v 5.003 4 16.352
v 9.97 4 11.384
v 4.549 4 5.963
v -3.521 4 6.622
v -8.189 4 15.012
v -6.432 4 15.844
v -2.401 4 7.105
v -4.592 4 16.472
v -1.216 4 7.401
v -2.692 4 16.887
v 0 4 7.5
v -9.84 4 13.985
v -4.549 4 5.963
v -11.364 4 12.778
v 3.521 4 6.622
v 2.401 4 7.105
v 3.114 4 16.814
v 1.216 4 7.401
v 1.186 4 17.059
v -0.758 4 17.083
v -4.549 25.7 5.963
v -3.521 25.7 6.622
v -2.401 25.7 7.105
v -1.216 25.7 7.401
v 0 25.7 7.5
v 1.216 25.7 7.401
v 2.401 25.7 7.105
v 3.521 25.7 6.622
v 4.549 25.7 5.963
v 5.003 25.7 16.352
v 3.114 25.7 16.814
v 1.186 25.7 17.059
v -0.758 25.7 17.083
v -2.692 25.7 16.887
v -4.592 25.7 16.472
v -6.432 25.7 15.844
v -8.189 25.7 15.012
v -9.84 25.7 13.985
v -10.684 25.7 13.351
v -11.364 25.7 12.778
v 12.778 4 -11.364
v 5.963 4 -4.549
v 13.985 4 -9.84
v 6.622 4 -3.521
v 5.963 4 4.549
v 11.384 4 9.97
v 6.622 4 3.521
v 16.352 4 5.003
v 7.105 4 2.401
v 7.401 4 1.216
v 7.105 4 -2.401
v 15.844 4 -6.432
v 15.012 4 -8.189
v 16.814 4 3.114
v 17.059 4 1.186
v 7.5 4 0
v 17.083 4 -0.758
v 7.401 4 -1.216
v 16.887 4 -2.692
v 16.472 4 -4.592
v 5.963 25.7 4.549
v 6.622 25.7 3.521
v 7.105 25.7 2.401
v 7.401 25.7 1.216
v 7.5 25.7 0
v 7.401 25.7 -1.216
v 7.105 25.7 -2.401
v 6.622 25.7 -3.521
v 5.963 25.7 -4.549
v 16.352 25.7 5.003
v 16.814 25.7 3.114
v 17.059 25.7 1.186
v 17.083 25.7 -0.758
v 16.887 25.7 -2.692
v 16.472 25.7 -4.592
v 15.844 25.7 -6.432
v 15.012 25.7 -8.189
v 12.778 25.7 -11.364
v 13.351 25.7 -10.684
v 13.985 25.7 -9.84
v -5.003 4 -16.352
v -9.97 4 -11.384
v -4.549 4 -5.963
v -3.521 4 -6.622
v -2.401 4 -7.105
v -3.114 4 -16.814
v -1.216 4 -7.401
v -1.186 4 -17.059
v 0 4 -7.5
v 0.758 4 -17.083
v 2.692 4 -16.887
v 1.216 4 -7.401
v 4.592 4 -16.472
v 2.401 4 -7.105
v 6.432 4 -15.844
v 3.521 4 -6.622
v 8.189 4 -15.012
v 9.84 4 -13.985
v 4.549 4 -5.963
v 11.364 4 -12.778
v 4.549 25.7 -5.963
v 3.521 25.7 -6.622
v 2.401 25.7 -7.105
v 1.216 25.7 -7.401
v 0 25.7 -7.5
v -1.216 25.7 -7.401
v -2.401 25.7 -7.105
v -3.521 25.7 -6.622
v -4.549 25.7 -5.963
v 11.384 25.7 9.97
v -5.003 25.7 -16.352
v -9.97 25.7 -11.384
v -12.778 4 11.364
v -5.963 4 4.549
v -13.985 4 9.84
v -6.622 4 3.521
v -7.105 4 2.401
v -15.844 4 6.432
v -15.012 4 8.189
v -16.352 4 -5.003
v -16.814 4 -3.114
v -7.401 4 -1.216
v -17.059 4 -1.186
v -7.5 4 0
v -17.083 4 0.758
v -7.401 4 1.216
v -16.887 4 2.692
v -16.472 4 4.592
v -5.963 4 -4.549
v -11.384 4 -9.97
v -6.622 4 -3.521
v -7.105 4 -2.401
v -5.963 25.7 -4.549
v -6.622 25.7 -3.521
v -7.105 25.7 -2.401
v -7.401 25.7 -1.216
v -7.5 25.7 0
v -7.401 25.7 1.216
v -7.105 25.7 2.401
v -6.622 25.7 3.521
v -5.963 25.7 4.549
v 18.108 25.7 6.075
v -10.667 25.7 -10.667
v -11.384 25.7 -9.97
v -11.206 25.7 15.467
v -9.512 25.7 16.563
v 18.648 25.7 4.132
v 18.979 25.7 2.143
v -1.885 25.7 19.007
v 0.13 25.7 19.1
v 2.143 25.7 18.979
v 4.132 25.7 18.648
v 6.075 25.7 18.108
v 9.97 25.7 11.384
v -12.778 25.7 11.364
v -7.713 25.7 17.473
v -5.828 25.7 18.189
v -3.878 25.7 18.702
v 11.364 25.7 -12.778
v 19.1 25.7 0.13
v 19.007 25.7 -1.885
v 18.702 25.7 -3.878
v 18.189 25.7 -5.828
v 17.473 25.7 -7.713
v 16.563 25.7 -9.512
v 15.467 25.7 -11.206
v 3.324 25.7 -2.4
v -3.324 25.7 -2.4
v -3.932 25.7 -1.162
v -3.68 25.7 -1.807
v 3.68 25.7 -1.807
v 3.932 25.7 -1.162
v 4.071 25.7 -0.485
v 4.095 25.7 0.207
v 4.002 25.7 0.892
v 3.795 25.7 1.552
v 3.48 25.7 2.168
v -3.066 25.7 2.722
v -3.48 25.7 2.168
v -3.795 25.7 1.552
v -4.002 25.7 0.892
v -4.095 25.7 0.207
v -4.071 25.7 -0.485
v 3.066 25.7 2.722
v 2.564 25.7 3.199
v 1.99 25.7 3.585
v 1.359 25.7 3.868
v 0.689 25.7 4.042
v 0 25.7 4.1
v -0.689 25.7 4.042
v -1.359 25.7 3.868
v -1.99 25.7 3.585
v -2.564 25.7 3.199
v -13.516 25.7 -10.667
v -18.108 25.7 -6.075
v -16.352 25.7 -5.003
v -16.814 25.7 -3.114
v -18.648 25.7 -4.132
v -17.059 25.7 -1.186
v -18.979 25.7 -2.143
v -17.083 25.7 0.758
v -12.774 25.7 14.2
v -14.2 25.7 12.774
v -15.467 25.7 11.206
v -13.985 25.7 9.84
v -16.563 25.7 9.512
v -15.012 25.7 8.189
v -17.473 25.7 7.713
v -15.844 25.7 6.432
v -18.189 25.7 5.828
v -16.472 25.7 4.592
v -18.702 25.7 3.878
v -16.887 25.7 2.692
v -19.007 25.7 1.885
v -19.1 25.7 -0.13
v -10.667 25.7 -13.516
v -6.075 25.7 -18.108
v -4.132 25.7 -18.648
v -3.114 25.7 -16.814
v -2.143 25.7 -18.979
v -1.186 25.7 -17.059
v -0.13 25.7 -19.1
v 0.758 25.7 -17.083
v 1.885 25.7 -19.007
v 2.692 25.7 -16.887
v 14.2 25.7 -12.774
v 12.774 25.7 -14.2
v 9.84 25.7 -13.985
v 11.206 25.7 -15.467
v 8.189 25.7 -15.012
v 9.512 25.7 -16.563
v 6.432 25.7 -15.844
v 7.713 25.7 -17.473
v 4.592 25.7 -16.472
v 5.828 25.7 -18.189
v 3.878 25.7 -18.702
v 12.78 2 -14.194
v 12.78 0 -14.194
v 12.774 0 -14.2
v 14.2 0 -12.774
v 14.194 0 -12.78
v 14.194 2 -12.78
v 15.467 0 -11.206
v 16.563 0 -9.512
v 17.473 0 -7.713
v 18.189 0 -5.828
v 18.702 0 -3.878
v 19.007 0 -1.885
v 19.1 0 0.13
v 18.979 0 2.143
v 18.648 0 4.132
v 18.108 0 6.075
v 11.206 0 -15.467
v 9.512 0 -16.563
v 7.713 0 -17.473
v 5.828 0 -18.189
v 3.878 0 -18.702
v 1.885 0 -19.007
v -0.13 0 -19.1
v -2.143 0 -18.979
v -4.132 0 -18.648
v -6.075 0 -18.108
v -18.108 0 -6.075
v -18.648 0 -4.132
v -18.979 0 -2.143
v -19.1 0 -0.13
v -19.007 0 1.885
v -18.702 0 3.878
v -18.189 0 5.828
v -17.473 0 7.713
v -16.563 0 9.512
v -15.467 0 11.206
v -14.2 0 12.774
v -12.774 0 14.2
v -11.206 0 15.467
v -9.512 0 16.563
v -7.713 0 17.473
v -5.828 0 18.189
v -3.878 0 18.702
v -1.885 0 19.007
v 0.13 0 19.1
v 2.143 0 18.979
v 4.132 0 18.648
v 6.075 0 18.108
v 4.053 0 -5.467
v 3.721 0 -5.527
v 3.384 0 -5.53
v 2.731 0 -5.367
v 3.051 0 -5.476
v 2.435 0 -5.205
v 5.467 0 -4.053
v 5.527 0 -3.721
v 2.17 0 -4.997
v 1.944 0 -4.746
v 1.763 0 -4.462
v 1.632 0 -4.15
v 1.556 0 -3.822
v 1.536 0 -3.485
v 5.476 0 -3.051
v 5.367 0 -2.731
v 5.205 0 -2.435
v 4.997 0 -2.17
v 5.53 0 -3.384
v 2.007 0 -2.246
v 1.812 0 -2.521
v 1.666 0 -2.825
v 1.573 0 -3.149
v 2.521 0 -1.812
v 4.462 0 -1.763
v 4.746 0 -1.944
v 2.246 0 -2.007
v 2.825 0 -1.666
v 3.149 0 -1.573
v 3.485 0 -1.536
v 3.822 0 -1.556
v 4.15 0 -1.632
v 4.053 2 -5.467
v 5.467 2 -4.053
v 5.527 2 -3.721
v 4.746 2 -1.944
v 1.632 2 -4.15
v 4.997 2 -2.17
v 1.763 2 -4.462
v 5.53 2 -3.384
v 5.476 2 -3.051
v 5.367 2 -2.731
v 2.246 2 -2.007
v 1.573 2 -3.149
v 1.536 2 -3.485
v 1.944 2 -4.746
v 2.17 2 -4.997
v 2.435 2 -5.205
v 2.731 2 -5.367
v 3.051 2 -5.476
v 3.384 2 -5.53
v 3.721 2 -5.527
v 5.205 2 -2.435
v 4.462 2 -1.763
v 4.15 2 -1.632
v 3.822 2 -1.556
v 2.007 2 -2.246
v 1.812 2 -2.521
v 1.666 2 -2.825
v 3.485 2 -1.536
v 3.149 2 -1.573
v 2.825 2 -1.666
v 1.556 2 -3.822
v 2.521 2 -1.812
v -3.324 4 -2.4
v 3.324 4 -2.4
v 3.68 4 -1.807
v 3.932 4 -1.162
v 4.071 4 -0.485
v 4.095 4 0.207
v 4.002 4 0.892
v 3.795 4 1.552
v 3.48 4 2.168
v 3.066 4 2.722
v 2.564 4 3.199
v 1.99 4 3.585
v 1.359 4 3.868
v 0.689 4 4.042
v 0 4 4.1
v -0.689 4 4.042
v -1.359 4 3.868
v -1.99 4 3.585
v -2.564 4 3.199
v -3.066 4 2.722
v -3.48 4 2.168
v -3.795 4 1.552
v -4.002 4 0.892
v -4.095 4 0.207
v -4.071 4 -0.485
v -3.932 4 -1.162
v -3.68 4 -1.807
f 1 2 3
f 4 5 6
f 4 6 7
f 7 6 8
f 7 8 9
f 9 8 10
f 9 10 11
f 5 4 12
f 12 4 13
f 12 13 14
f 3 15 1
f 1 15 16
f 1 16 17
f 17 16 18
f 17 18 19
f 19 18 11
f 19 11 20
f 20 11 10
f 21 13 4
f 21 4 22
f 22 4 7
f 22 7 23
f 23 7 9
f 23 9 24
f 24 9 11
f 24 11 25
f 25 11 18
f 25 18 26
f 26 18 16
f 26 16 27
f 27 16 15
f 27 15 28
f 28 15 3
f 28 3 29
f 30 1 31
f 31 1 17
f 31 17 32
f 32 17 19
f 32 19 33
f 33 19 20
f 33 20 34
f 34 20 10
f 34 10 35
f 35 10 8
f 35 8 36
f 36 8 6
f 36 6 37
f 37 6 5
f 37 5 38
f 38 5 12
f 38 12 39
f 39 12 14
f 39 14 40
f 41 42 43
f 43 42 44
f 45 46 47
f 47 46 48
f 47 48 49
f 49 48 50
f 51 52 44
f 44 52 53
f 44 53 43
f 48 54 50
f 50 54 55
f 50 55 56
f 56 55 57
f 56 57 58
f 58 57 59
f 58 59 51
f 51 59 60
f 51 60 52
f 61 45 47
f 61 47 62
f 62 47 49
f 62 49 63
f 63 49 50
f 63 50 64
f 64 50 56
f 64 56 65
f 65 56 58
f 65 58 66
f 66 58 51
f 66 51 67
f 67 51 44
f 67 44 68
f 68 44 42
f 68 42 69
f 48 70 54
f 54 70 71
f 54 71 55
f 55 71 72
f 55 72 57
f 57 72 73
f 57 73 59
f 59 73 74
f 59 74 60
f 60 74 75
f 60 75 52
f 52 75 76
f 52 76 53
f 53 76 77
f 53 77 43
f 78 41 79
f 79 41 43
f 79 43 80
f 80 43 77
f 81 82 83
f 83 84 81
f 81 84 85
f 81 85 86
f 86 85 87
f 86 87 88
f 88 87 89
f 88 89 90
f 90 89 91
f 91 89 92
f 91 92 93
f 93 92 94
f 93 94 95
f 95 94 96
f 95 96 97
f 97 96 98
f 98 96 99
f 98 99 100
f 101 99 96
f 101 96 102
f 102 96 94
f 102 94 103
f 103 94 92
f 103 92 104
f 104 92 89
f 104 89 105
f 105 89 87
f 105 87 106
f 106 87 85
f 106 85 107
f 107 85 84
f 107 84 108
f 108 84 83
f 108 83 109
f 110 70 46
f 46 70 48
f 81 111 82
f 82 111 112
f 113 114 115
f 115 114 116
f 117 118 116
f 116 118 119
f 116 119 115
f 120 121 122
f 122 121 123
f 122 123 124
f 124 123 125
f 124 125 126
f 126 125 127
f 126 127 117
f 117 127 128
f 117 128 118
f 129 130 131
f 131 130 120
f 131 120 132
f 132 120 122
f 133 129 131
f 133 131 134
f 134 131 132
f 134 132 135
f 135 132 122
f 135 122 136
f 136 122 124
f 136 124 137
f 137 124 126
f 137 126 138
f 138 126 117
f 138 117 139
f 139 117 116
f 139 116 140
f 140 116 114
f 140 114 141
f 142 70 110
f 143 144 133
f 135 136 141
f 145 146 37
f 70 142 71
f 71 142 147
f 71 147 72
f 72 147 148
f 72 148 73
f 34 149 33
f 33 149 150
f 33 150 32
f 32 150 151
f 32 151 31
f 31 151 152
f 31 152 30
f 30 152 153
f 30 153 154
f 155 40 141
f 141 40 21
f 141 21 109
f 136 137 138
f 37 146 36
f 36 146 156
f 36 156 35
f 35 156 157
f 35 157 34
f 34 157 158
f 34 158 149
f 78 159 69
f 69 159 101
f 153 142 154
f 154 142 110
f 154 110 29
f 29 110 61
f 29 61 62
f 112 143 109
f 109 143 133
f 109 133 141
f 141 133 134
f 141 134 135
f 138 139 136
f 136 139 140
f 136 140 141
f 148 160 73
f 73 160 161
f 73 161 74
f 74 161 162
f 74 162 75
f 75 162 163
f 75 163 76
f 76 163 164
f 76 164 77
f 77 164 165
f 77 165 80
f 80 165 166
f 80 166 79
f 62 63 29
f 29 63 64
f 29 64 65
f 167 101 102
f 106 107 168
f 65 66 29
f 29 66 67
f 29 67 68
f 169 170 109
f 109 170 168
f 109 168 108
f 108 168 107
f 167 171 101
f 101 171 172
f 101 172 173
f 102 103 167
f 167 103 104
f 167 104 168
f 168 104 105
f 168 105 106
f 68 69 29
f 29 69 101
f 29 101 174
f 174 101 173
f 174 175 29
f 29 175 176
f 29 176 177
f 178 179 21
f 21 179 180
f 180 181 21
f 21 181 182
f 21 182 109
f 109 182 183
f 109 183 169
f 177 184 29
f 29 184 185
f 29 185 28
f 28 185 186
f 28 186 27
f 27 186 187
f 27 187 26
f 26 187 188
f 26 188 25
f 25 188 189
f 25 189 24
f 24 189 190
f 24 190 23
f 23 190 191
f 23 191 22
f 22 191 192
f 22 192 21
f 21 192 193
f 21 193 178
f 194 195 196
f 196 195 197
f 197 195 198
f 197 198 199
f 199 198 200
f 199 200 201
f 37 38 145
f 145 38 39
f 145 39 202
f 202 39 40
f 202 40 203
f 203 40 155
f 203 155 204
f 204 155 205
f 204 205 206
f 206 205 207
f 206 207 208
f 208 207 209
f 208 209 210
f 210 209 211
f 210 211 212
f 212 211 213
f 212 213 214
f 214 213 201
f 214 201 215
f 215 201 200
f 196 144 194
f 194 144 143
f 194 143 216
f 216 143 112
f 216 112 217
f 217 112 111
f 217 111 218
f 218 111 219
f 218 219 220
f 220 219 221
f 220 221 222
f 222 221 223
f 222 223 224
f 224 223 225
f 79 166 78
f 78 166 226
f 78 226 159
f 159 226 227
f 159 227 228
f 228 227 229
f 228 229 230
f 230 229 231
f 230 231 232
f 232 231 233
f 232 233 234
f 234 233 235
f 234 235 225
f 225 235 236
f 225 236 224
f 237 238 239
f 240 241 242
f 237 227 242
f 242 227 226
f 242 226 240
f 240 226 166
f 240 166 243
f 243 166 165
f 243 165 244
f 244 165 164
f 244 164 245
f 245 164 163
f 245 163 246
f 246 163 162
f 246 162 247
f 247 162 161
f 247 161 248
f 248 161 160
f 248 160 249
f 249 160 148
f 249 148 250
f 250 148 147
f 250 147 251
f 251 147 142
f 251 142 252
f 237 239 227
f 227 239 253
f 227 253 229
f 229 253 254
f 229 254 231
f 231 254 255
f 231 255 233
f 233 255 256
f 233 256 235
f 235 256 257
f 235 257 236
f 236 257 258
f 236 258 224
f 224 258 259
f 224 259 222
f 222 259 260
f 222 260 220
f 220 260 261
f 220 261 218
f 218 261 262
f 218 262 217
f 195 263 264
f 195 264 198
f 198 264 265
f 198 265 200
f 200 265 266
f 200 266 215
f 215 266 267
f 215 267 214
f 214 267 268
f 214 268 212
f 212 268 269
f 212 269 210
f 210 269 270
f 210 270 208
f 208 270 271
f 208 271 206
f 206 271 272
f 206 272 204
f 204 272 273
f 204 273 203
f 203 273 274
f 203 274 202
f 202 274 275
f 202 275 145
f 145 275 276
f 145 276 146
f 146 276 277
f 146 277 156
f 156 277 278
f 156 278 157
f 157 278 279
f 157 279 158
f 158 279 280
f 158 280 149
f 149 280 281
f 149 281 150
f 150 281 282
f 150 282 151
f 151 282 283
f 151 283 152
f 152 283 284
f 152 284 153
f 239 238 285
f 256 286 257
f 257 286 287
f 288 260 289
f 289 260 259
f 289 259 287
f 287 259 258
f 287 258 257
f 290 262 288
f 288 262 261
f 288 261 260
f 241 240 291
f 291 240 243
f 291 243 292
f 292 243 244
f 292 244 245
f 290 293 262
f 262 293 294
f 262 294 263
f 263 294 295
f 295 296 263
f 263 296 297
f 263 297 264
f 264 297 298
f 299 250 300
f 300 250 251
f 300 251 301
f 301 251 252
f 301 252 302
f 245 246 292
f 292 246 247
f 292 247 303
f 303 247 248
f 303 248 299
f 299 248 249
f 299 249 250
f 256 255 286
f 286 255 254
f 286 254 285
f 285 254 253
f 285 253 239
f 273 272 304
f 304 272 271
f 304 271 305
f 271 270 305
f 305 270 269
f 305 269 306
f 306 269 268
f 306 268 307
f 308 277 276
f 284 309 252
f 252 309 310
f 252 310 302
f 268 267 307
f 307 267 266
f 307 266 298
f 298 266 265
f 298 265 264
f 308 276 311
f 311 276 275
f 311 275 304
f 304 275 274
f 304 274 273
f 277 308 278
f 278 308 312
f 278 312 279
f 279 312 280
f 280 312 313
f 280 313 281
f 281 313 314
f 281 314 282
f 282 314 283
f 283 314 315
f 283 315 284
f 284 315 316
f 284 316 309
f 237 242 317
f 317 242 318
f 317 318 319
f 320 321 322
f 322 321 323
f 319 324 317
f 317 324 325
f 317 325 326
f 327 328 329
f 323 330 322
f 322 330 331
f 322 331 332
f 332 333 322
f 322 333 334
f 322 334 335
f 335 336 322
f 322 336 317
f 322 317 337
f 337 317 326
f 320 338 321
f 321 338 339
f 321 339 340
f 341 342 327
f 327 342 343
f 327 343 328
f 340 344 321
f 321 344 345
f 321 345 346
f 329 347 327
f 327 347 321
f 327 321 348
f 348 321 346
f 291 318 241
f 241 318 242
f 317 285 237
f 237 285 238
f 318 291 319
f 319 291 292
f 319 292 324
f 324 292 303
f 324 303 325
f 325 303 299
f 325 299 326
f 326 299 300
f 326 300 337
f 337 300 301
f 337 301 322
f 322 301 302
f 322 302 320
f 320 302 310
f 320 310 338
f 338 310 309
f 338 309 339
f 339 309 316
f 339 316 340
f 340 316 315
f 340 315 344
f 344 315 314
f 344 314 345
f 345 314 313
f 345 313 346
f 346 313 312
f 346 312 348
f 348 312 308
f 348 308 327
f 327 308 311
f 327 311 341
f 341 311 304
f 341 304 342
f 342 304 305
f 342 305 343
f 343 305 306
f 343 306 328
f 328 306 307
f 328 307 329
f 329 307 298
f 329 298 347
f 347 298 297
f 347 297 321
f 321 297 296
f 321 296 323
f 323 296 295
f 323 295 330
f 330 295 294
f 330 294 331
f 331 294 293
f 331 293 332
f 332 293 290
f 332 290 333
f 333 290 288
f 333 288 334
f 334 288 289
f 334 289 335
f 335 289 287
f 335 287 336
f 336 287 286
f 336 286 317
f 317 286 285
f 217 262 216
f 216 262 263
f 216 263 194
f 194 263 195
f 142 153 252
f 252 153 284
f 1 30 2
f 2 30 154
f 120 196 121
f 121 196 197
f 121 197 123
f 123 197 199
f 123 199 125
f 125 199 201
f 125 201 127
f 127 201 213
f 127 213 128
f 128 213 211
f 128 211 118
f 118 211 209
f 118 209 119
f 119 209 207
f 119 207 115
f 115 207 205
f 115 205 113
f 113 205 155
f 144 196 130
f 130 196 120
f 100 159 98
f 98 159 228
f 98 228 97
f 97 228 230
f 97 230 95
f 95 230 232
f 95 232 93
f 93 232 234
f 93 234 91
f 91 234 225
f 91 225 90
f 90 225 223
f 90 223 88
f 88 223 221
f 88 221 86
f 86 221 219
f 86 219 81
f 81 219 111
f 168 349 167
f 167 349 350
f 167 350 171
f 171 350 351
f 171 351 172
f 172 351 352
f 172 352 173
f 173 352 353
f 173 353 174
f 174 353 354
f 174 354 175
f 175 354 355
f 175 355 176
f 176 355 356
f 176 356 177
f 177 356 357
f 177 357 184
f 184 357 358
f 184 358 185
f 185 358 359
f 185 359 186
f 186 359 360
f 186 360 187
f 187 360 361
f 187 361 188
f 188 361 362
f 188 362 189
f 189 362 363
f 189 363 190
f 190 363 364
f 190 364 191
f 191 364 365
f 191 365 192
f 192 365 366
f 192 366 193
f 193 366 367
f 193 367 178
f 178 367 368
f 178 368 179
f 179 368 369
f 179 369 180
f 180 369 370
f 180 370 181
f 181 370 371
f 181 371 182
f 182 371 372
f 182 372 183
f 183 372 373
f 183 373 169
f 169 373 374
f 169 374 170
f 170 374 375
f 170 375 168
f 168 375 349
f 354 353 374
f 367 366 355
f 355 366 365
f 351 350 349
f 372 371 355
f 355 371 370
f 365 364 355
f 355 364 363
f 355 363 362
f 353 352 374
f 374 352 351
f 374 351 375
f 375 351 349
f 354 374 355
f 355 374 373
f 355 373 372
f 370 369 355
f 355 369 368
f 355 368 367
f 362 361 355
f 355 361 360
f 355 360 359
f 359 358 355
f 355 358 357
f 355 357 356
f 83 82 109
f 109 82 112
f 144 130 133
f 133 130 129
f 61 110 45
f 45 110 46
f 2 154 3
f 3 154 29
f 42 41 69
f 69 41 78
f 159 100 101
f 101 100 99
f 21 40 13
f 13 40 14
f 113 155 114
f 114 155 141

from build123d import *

# Parameters (mm, degrees)
SKETCH_1_R          = 19.1
EXTRUDE_1_DEPTH     = 25.7
SKETCH_1_7_R        = 2
CUT_EXTRUDE_1_DEPTH = 2
CUT_EXTRUDE_2_DEPTH = 38.28417895
CUT_EXTRUDE_3_DEPTH = 21.7
EXTRUDE_START       = 4
SKETCH_1_8_R        = 7.5
EXTRUDE_2_DEPTH     = 21.7
EXTRUDE_3_DEPTH     = 21.7


with BuildPart() as part:
    # 草图1 → 凸台-拉伸1 (new body)
    with BuildSketch(Plane(origin=(0, 0, 0), x_dir=(1, 0, 0), z_dir=(0, 1, 0))):
        with Locations(Location((0, 0, 0), (0, 0, 90))):
            Circle(SKETCH_1_R)
    extrude(amount=EXTRUDE_1_DEPTH)

    # 草图1<7> → 切除-拉伸1 (cut)
    with BuildSketch(Plane(origin=(0, 0, 0), x_dir=(1, 0, 0), z_dir=(0, 1, 0))):
        with Locations((3.535533906, 3.535533906)):
            Circle(SKETCH_1_7_R)
        Polygon((13.435028843, 14.849242405), (2.828427125, 4.242640687), (4.242640687, 2.828427125), (14.849242405, 13.435028843), align=None)
    extrude(amount=CUT_EXTRUDE_1_DEPTH, mode=Mode.SUBTRACT)

    # 草图2 → 切除-拉伸2 (cut, through all)
    with BuildSketch(Plane.XZ):
        with BuildLine():
            Line((12.091525958, 12.091525958), (18.108169541, 6.074882376))
            ThreePointArc((18.108169541, 6.074882376), (13.505739521, 13.505739521), (6.074882376, 18.108169541))
            Line((6.074882376, 18.108169541), (12.091525958, 12.091525958))
        make_face()
        with BuildLine():
            ThreePointArc((-18.108169541, -6.074882376), (-13.505739521, -13.505739521), (-6.074882376, -18.108169541))
            Line((-6.074882376, -18.108169541), (-12.091525958, -12.091525958))
            Line((-12.091525958, -12.091525958), (-18.108169541, -6.074882376))
        make_face()
    extrude(amount=-CUT_EXTRUDE_2_DEPTH, mode=Mode.SUBTRACT)

    # 草图3 → 切除-拉伸3 (cut)
    with BuildSketch(Plane(origin=(0, 25.7, 0), x_dir=(1, 0, 0), z_dir=(0, 1, 0))):
        with BuildLine():
            ThreePointArc((17.1, 0), (10.170102826, 13.74696361), (-5.002808012, 16.35181678))
            Line((-5.002808012, 16.35181678), (-16.35181678, 5.002808012))
            ThreePointArc((-16.35181678, 5.002808012), (-12.091525958, -12.091525958), (5.002808012, -16.35181678))
            Line((5.002808012, -16.35181678), (16.35181678, -5.002808012))
            ThreePointArc((16.35181678, -5.002808012), (16.911919863, -2.529222516), (17.1, 0))
        make_face()
    extrude(amount=-CUT_EXTRUDE_3_DEPTH, mode=Mode.SUBTRACT)

    # 草图1<8> → 凸台-拉伸2 (add)
    with BuildSketch(Plane(origin=(0, 0, 0), x_dir=(1, 0, 0), z_dir=(0, 1, 0)).offset(EXTRUDE_START)):
        with Locations(Location((0, 0, 0), (0, 0, 270))):
            Circle(SKETCH_1_8_R)
        with BuildLine():
            Line((-3.324154028, 2.4), (3.324154028, 2.4))
            ThreePointArc((3.324154028, 2.4), (0, -4.1), (-3.324154028, 2.4))
        make_face(mode=Mode.SUBTRACT)
    extrude(amount=EXTRUDE_2_DEPTH)

    # 草图4 → 拉伸-薄壁3 (add)
    with BuildSketch(Plane(origin=(0, 25.7, 0), x_dir=(1, 0, 0), z_dir=(0, 1, 0))):
        Polygon((-11.384419177, 9.970205615), (-4.313351365, 2.899137803), (-2.899137803, 4.313351365), (-9.970205615, 11.384419177), align=None)
        Polygon((11.384419177, 12.798632739), (3.606244584, 5.020458146), (5.020458146, 3.606244584), (12.798632739, 11.384419177), align=None)
        Polygon((-5.020458146, -3.606244584), (-12.798632739, -11.384419177), (-11.384419177, -12.798632739), (-3.606244584, -5.020458146), align=None)
        Polygon((2.899137803, -4.313351365), (9.970205615, -11.384419177), (11.384419177, -9.970205615), (4.313351365, -2.899137803), align=None)
    extrude(amount=-EXTRUDE_3_DEPTH)


solid = part.part
